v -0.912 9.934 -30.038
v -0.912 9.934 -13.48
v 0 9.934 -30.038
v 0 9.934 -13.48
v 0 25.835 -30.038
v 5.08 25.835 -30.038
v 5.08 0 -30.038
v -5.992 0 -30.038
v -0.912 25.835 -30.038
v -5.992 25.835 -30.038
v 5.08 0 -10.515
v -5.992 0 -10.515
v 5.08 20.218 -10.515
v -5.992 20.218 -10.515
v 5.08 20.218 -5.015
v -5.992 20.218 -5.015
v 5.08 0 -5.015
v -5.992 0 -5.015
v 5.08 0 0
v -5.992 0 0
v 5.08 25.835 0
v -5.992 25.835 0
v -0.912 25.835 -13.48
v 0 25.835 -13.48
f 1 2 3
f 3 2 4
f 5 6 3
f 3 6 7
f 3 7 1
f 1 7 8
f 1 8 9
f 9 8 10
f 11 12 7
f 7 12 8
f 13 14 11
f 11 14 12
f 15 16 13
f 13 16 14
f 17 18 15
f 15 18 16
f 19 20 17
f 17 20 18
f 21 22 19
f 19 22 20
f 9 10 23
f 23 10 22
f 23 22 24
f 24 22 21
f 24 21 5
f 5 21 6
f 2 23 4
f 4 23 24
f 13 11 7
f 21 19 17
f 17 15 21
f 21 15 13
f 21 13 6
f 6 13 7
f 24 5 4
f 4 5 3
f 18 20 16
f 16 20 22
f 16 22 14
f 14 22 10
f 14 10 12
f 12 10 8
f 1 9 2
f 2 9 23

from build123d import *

# Parameters (mm, degrees)
BOSS_EXTRUDE1_DEPTH = 0.912
BOSS_EXTRUDE2_DEPTH = 5.08
BOSS_EXTRUDE3_DEPTH = 5.08


with BuildPart() as part:
    # Sketch1 → Boss-Extrude1 (new body)
    with BuildSketch(Plane(origin=(0, 0, 0), x_dir=(0, 0, -1), z_dir=(1, 0, 0))):
        Polygon((0, 0), (5.014983062, 0), (5.014983062, 20.218431916), (10.514983062, 20.218431916), (10.514983062, 0), (30.0377124, 0), (30.0377124, 9.933664863), (13.47996686, 9.933664863), (13.47996686, 25.83493591), (0, 25.83493591), align=None)
    extrude(amount=-BOSS_EXTRUDE1_DEPTH)

    # Sketch1<3> → Boss-Extrude2 (add)
    with BuildSketch(Plane(origin=(0, 0, 0), x_dir=(0, 0, -1), z_dir=(1, 0, 0))):
        Polygon((0, 0), (5.014983062, 0), (5.014983062, 20.218431916), (10.514983062, 20.218431916), (10.514983062, 0), (30.0377124, 0), (30.0377124, 25.83493591), (0, 25.83493591), align=None)
    extrude(amount=BOSS_EXTRUDE2_DEPTH)

    # Sketch2 → Boss-Extrude3 (add)
    with BuildSketch(Plane.ZY.offset(0.912)):
        Polygon((-30.0377124, 25.83493591), (0, 25.83493591), (0, 0), (-5.014983062, 0), (-5.014983062, 20.218431916), (-10.514983062, 20.218431916), (-10.514983062, 0), (-30.0377124, 0), align=None)
    extrude(amount=BOSS_EXTRUDE3_DEPTH)


solid = part.part
